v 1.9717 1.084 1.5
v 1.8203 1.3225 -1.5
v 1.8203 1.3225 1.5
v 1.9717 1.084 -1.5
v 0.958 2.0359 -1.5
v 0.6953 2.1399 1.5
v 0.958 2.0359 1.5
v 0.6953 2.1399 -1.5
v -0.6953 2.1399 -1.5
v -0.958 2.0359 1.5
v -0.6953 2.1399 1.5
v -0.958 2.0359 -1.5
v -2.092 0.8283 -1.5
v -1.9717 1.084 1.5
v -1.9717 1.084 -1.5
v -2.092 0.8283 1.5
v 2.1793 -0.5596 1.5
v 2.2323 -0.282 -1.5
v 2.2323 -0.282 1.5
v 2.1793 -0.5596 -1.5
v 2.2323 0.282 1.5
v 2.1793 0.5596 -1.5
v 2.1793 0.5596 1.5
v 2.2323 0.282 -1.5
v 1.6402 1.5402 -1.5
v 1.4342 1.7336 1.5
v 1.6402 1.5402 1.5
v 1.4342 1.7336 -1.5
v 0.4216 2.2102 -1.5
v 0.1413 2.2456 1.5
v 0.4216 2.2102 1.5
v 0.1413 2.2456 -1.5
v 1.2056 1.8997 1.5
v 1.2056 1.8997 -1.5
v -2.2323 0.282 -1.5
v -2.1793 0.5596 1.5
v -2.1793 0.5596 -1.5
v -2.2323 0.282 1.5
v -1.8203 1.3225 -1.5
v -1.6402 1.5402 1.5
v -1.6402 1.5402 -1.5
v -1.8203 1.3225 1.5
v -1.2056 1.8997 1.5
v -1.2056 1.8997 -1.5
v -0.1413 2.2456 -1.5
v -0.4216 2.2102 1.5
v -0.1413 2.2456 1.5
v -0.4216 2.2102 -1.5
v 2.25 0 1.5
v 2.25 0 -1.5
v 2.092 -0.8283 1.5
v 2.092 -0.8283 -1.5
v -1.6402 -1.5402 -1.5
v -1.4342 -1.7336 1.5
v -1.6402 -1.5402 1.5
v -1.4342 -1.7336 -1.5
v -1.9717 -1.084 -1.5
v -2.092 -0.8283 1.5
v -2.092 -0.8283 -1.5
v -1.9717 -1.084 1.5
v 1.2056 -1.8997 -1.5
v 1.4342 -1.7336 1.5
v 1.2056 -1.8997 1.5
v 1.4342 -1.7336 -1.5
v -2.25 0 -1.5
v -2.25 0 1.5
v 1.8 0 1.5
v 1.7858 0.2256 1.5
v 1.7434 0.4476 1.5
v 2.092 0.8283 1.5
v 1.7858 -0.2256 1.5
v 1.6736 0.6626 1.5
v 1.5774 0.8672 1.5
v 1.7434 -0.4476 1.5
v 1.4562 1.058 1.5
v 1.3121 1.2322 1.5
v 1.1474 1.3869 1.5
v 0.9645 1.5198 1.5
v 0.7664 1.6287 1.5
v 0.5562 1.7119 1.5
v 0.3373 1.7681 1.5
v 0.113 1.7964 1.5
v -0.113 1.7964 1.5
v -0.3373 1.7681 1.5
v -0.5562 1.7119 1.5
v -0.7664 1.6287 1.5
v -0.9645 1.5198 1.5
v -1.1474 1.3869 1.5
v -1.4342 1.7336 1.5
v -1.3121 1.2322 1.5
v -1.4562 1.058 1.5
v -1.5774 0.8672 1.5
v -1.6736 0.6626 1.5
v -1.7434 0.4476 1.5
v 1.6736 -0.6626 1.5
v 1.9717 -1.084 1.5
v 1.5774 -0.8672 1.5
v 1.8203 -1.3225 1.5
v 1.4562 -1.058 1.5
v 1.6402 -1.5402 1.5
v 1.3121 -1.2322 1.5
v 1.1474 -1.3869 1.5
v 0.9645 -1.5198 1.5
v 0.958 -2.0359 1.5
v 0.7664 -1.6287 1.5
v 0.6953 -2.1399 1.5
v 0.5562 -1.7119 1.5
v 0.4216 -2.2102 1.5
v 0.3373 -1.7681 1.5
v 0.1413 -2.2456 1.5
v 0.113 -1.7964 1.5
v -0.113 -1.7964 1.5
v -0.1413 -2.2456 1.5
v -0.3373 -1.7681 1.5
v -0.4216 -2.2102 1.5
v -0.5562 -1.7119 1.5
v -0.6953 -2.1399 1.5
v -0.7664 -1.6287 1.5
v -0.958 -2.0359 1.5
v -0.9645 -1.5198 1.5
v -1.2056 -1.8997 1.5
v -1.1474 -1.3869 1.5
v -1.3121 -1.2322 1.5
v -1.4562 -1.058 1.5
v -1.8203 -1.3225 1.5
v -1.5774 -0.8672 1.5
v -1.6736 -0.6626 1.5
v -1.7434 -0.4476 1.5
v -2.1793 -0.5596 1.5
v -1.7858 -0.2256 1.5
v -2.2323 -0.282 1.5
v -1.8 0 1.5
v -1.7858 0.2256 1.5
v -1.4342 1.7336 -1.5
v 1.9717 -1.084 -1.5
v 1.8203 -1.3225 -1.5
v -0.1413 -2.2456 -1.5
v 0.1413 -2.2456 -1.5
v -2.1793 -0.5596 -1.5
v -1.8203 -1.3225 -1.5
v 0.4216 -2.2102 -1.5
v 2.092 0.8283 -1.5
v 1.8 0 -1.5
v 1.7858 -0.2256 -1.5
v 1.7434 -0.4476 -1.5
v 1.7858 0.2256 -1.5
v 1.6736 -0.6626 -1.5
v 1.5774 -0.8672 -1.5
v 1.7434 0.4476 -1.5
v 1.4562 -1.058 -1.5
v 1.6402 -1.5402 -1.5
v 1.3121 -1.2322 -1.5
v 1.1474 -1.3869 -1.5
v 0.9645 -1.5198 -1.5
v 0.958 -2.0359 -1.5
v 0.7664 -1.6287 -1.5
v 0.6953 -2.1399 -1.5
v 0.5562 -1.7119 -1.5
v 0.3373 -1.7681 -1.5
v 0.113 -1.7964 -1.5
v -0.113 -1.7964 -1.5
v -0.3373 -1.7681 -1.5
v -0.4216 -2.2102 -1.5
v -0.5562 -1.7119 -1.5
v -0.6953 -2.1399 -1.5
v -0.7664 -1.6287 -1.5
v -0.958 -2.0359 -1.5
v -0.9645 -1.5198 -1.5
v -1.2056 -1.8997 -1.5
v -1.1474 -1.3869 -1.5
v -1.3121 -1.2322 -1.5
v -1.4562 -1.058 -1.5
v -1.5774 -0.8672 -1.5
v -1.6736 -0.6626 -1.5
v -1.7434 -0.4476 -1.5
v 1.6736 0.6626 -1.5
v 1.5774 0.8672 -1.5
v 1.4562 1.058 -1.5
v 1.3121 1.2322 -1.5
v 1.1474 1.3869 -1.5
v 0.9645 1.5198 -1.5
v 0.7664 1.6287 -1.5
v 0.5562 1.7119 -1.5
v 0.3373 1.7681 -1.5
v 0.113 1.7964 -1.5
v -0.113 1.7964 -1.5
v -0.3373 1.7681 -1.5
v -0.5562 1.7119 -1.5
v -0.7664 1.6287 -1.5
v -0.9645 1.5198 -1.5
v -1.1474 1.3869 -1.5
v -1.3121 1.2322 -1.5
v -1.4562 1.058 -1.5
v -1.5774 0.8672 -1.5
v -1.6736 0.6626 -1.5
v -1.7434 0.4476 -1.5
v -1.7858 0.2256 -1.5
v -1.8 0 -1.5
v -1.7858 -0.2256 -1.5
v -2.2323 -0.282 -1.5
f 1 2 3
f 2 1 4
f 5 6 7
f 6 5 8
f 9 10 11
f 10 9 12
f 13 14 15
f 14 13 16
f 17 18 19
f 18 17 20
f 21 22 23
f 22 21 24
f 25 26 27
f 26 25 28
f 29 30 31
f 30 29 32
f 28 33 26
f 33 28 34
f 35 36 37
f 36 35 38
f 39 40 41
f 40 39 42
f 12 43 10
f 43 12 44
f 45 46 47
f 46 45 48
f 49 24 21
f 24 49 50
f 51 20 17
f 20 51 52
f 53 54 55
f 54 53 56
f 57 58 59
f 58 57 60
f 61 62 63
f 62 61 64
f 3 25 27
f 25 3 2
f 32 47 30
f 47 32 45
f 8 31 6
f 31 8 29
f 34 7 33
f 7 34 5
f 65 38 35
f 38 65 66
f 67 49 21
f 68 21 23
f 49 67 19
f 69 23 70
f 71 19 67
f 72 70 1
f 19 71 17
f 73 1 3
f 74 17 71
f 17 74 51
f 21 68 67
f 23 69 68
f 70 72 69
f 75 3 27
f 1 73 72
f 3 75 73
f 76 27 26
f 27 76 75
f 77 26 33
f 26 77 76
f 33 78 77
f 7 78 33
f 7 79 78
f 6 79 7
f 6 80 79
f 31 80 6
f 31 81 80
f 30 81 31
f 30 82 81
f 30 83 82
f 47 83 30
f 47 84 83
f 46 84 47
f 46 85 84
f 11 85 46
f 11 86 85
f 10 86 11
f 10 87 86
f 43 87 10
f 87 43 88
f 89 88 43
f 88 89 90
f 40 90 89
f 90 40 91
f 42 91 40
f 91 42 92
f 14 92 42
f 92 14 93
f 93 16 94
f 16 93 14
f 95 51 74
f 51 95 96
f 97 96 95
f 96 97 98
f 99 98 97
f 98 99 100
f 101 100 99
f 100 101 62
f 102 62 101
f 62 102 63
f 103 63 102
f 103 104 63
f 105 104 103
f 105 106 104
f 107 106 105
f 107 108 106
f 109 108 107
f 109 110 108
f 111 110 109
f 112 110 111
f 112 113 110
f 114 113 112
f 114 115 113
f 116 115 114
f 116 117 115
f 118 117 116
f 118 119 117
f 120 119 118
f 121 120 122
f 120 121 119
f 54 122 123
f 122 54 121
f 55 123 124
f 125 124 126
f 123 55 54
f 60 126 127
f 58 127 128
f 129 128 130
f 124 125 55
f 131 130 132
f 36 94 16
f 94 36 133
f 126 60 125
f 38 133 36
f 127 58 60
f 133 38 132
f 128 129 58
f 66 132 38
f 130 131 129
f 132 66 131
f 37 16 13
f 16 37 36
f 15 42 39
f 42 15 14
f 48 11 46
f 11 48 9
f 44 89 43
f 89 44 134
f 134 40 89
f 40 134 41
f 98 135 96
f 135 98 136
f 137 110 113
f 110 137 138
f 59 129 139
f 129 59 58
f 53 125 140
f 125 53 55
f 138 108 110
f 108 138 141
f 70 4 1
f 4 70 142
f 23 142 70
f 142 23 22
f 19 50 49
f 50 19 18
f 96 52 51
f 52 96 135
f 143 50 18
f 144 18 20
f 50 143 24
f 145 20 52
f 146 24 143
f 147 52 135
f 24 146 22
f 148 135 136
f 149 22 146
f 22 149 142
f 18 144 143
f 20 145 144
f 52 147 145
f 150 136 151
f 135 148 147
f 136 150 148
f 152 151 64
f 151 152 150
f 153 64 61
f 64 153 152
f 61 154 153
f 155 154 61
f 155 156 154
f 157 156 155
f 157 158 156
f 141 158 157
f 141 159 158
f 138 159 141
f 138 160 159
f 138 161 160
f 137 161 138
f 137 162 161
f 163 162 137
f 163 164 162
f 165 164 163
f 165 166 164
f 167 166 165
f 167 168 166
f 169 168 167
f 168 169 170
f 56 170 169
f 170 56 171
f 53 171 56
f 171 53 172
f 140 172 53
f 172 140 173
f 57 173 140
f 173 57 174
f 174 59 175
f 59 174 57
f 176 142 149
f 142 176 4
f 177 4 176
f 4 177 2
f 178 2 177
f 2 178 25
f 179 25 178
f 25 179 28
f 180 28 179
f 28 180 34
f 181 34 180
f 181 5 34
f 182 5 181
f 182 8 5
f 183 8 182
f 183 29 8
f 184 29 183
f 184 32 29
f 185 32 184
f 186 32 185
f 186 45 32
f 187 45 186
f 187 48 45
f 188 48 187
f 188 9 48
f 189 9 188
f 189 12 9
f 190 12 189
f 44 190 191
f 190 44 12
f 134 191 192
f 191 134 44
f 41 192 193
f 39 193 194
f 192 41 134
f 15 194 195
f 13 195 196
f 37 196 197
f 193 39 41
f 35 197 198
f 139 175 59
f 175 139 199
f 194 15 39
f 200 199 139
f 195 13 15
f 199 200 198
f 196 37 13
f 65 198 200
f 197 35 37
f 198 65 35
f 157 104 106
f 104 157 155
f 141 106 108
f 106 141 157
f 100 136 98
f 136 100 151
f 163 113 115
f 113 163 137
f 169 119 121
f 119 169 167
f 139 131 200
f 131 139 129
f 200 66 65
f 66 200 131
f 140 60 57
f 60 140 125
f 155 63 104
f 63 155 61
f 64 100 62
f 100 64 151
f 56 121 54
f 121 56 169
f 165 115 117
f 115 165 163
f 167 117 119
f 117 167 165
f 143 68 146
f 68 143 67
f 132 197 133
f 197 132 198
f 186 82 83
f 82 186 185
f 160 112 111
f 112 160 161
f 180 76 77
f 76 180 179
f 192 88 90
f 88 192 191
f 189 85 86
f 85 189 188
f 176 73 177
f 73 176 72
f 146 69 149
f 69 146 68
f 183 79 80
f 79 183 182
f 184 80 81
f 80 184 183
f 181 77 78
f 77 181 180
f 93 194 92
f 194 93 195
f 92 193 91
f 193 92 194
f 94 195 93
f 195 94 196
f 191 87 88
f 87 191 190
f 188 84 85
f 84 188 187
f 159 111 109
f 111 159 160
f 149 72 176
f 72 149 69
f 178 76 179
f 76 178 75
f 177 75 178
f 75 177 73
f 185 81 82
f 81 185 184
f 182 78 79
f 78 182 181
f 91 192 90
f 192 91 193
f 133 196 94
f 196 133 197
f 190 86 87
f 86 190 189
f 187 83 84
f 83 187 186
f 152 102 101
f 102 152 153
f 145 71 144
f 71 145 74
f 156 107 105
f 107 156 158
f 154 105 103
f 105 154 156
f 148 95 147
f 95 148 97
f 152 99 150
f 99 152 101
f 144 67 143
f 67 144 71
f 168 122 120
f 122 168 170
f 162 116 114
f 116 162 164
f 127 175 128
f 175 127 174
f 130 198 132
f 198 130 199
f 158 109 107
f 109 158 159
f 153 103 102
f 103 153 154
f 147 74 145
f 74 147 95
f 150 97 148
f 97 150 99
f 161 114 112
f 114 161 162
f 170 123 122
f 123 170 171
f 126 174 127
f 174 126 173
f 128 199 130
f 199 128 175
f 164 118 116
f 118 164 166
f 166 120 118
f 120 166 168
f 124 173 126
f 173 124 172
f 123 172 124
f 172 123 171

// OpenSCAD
$fn = 50;


difference() {
	union() {
		translate(v = [0, 0, -1.5000000000]) {
			cylinder(h = 3, r = 2.2500000000);
		}
	}
	union() {
		translate(v = [0, 0, -100.0000000000]) {
			cylinder(h = 200, r = 1.8000000000);
		}
	}
}
